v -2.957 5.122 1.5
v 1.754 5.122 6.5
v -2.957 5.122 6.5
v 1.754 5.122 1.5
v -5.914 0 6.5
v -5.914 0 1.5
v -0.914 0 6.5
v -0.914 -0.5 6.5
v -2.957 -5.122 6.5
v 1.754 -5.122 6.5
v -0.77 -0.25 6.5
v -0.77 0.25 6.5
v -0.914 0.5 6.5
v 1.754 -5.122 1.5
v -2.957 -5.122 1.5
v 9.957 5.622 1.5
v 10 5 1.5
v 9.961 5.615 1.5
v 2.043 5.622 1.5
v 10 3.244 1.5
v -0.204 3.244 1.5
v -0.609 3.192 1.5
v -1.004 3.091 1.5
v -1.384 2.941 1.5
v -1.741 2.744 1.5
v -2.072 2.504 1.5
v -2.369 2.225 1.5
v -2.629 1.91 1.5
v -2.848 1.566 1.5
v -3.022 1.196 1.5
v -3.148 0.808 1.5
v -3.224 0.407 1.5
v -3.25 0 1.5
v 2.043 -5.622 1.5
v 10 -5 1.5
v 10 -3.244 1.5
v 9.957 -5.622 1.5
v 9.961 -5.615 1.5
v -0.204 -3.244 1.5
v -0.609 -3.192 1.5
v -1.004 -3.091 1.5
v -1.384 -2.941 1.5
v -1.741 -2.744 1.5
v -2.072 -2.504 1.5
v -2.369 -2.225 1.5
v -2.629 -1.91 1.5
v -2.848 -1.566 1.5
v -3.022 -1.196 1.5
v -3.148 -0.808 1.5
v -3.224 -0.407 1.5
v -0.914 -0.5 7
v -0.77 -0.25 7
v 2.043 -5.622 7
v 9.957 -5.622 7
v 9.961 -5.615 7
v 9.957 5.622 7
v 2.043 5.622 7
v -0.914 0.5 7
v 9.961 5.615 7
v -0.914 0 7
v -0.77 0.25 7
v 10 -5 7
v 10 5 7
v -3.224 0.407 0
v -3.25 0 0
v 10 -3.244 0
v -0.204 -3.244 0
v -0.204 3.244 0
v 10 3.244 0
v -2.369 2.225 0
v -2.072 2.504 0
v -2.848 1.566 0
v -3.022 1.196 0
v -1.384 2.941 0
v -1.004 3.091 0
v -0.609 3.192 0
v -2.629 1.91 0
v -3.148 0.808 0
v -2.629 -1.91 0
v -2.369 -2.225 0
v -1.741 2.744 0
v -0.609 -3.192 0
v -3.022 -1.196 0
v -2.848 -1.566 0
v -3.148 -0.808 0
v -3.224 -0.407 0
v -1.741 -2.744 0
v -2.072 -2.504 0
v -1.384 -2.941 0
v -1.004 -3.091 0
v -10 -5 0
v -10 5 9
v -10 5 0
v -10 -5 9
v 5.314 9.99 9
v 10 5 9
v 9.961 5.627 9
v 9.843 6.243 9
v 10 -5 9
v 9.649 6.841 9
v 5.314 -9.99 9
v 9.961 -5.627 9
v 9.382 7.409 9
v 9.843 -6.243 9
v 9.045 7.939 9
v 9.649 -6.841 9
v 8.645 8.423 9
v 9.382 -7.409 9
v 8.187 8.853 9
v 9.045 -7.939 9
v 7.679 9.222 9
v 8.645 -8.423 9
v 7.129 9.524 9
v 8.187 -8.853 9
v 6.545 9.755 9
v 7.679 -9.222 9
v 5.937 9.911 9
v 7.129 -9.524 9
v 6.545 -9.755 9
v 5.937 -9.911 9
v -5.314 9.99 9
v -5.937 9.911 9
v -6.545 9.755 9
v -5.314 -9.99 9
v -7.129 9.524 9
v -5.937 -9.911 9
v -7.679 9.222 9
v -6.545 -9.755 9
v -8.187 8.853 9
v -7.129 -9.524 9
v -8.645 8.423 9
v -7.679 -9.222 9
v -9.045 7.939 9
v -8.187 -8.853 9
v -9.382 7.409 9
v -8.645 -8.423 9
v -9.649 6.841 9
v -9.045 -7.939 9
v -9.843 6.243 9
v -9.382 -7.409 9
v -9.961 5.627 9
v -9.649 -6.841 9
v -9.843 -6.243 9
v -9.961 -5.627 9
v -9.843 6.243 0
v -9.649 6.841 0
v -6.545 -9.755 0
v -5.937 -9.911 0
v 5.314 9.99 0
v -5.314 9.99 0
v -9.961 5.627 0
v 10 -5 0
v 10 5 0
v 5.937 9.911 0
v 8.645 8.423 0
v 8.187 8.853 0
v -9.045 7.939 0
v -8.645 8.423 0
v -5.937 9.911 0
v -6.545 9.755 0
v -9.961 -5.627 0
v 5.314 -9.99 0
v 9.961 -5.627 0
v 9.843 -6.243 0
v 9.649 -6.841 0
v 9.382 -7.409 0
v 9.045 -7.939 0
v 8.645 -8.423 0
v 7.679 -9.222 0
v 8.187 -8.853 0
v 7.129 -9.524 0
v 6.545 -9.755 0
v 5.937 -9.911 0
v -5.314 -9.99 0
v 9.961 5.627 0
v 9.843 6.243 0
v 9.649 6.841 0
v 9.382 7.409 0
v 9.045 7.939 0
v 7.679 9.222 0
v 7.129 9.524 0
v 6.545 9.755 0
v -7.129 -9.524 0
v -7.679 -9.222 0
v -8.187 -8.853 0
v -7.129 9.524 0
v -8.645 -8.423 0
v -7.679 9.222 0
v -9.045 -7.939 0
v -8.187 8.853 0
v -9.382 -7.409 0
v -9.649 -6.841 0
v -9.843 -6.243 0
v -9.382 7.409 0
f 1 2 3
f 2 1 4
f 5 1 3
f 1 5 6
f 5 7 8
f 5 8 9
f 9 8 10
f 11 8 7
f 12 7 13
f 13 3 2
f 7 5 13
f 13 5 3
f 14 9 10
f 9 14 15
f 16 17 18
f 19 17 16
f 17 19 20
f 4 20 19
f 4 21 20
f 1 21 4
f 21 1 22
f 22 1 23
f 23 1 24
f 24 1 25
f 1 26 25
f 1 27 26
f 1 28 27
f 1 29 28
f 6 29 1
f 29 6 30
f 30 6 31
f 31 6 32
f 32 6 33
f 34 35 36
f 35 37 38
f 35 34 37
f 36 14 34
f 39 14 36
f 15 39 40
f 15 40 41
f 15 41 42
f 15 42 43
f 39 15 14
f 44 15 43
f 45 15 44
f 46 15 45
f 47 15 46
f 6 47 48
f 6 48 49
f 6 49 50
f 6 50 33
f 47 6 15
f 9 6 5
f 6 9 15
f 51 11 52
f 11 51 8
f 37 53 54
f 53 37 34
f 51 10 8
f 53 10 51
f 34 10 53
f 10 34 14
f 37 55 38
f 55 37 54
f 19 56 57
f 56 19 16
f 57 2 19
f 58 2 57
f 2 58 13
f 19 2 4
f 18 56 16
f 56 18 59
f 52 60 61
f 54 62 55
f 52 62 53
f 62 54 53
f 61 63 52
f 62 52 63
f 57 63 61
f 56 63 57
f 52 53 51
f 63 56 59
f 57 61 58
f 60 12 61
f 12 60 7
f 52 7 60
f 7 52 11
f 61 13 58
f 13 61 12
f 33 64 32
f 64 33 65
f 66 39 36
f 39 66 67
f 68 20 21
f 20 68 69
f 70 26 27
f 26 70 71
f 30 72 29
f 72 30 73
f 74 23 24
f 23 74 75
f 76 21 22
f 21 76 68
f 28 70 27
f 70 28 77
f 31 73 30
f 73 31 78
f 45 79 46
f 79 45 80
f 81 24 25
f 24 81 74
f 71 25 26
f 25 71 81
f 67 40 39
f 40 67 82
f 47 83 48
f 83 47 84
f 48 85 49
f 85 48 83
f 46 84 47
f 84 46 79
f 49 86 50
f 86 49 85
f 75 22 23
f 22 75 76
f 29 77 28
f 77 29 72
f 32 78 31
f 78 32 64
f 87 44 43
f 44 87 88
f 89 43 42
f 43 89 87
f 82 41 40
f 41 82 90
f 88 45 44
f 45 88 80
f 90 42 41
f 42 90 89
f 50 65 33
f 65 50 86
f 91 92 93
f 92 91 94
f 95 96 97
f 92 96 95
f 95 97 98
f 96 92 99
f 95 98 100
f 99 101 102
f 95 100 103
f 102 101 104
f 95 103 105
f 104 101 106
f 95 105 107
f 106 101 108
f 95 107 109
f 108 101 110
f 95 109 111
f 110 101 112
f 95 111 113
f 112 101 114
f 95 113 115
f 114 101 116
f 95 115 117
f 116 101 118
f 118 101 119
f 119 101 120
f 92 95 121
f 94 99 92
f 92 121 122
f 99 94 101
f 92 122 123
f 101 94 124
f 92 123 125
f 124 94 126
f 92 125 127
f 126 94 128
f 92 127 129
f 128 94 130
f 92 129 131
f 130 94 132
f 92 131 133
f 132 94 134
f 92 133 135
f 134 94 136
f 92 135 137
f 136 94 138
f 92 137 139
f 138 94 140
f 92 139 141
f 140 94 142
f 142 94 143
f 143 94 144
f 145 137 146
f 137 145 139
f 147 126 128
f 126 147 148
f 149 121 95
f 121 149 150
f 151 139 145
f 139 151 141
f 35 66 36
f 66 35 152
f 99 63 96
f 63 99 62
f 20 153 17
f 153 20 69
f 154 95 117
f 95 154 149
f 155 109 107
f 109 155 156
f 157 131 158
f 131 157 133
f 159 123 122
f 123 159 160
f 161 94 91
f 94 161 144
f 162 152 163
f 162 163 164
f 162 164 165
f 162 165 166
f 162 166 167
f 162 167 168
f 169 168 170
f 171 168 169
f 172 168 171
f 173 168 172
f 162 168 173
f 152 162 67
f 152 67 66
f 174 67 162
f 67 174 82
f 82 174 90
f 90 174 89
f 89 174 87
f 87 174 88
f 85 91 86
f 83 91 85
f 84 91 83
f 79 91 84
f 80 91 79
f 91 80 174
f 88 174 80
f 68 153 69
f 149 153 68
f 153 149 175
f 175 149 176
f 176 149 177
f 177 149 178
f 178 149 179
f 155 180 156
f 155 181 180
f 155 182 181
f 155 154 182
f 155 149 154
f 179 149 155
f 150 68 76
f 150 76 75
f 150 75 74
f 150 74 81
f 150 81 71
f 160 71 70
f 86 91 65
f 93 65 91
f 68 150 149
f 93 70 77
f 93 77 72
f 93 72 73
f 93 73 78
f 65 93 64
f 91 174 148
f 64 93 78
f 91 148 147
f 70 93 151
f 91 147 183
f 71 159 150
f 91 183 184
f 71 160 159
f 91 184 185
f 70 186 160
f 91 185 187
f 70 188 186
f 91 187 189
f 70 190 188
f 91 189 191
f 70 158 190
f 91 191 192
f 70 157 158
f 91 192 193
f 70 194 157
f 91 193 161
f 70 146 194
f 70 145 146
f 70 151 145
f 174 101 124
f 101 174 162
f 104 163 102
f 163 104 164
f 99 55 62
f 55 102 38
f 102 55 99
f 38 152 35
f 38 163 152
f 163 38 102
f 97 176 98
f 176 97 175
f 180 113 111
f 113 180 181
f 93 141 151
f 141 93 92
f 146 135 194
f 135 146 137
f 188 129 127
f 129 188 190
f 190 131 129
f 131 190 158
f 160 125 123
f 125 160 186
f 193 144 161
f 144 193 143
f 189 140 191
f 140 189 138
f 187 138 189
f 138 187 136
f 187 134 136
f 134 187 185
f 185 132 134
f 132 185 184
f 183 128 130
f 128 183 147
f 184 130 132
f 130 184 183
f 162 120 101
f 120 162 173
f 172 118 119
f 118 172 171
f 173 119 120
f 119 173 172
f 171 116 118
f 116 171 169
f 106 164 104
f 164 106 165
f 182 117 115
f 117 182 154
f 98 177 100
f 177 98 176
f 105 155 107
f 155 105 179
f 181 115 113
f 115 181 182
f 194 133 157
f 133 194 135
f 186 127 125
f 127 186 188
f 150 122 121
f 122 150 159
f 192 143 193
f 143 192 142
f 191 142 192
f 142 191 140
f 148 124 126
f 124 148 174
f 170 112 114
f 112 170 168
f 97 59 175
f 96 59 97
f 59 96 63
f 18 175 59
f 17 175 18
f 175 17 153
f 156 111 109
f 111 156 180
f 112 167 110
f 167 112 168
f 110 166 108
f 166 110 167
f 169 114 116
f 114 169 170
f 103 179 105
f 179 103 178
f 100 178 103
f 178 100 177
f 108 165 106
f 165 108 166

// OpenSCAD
$fn = 50;


difference() {
	union() {
		hull() {
			translate(v = [-5.0000000000, 5.0000000000, 0]) {
				cylinder(h = 9, r = 5);
			}
			translate(v = [5.0000000000, 5.0000000000, 0]) {
				cylinder(h = 9, r = 5);
			}
			translate(v = [-5.0000000000, -5.0000000000, 0]) {
				cylinder(h = 9, r = 5);
			}
			translate(v = [5.0000000000, -5.0000000000, 0]) {
				cylinder(h = 9, r = 5);
			}
		}
	}
	union() {
		translate(v = [0, 0, 1.5000000000]) {
			rotate(a = [0, 0, 0]) {
				difference() {
					union() {
						#linear_extrude(height = 5) {
							polygon(points = [[5.9142500000, 0.0000000000], [2.9571250000, 5.1218907443], [-2.9571250000, 5.1218907443], [-5.9142500000, 0.0000000000], [-2.9571250000, -5.1218907443], [2.9571250000, -5.1218907443]]);
						}
					}
					union();
				}
			}
		}
		translate(v = [5, -0.5000000000, 1.5000000000]) {
			rotate(a = [0, 0, 0]) {
				difference() {
					union() {
						#linear_extrude(height = 5) {
							polygon(points = [[5.9142500000, 0.0000000000], [2.9571250000, 5.1218907443], [-2.9571250000, 5.1218907443], [-5.9142500000, 0.0000000000], [-2.9571250000, -5.1218907443], [2.9571250000, -5.1218907443]]);
						}
					}
					union();
				}
			}
		}
		translate(v = [6, -0.5000000000, 1.5000000000]) {
			rotate(a = [0, 0, 0]) {
				difference() {
					union() {
						#linear_extrude(height = 5) {
							polygon(points = [[5.9142500000, 0.0000000000], [2.9571250000, 5.1218907443], [-2.9571250000, 5.1218907443], [-5.9142500000, 0.0000000000], [-2.9571250000, -5.1218907443], [2.9571250000, -5.1218907443]]);
						}
					}
					union();
				}
			}
		}
		translate(v = [7, -0.5000000000, 1.5000000000]) {
			rotate(a = [0, 0, 0]) {
				difference() {
					union() {
						#linear_extrude(height = 5) {
							polygon(points = [[5.9142500000, 0.0000000000], [2.9571250000, 5.1218907443], [-2.9571250000, 5.1218907443], [-5.9142500000, 0.0000000000], [-2.9571250000, -5.1218907443], [2.9571250000, -5.1218907443]]);
						}
					}
					union();
				}
			}
		}
		translate(v = [5, 0.0000000000, 1.5000000000]) {
			rotate(a = [0, 0, 0]) {
				difference() {
					union() {
						#linear_extrude(height = 5) {
							polygon(points = [[5.9142500000, 0.0000000000], [2.9571250000, 5.1218907443], [-2.9571250000, 5.1218907443], [-5.9142500000, 0.0000000000], [-2.9571250000, -5.1218907443], [2.9571250000, -5.1218907443]]);
						}
					}
					union();
				}
			}
		}
		translate(v = [6, 0.0000000000, 1.5000000000]) {
			rotate(a = [0, 0, 0]) {
				difference() {
					union() {
						#linear_extrude(height = 5) {
							polygon(points = [[5.9142500000, 0.0000000000], [2.9571250000, 5.1218907443], [-2.9571250000, 5.1218907443], [-5.9142500000, 0.0000000000], [-2.9571250000, -5.1218907443], [2.9571250000, -5.1218907443]]);
						}
					}
					union();
				}
			}
		}
		translate(v = [7, 0.0000000000, 1.5000000000]) {
			rotate(a = [0, 0, 0]) {
				difference() {
					union() {
						#linear_extrude(height = 5) {
							polygon(points = [[5.9142500000, 0.0000000000], [2.9571250000, 5.1218907443], [-2.9571250000, 5.1218907443], [-5.9142500000, 0.0000000000], [-2.9571250000, -5.1218907443], [2.9571250000, -5.1218907443]]);
						}
					}
					union();
				}
			}
		}
		translate(v = [5, 0.5000000000, 1.5000000000]) {
			rotate(a = [0, 0, 0]) {
				difference() {
					union() {
						#linear_extrude(height = 5) {
							polygon(points = [[5.9142500000, 0.0000000000], [2.9571250000, 5.1218907443], [-2.9571250000, 5.1218907443], [-5.9142500000, 0.0000000000], [-2.9571250000, -5.1218907443], [2.9571250000, -5.1218907443]]);
						}
					}
					union();
				}
			}
		}
		translate(v = [6, 0.5000000000, 1.5000000000]) {
			rotate(a = [0, 0, 0]) {
				difference() {
					union() {
						#linear_extrude(height = 5) {
							polygon(points = [[5.9142500000, 0.0000000000], [2.9571250000, 5.1218907443], [-2.9571250000, 5.1218907443], [-5.9142500000, 0.0000000000], [-2.9571250000, -5.1218907443], [2.9571250000, -5.1218907443]]);
						}
					}
					union();
				}
			}
		}
		translate(v = [7, 0.5000000000, 1.5000000000]) {
			rotate(a = [0, 0, 0]) {
				difference() {
					union() {
						#linear_extrude(height = 5) {
							polygon(points = [[5.9142500000, 0.0000000000], [2.9571250000, 5.1218907443], [-2.9571250000, 5.1218907443], [-5.9142500000, 0.0000000000], [-2.9571250000, -5.1218907443], [2.9571250000, -5.1218907443]]);
						}
					}
					union();
				}
			}
		}
		translate(v = [5, -0.5000000000, 2.0000000000]) {
			rotate(a = [0, 0, 0]) {
				difference() {
					union() {
						#linear_extrude(height = 5) {
							polygon(points = [[5.9142500000, 0.0000000000], [2.9571250000, 5.1218907443], [-2.9571250000, 5.1218907443], [-5.9142500000, 0.0000000000], [-2.9571250000, -5.1218907443], [2.9571250000, -5.1218907443]]);
						}
					}
					union();
				}
			}
		}
		translate(v = [6, -0.5000000000, 2.0000000000]) {
			rotate(a = [0, 0, 0]) {
				difference() {
					union() {
						#linear_extrude(height = 5) {
							polygon(points = [[5.9142500000, 0.0000000000], [2.9571250000, 5.1218907443], [-2.9571250000, 5.1218907443], [-5.9142500000, 0.0000000000], [-2.9571250000, -5.1218907443], [2.9571250000, -5.1218907443]]);
						}
					}
					union();
				}
			}
		}
		translate(v = [7, -0.5000000000, 2.0000000000]) {
			rotate(a = [0, 0, 0]) {
				difference() {
					union() {
						#linear_extrude(height = 5) {
							polygon(points = [[5.9142500000, 0.0000000000], [2.9571250000, 5.1218907443], [-2.9571250000, 5.1218907443], [-5.9142500000, 0.0000000000], [-2.9571250000, -5.1218907443], [2.9571250000, -5.1218907443]]);
						}
					}
					union();
				}
			}
		}
		translate(v = [5, 0.0000000000, 2.0000000000]) {
			rotate(a = [0, 0, 0]) {
				difference() {
					union() {
						#linear_extrude(height = 5) {
							polygon(points = [[5.9142500000, 0.0000000000], [2.9571250000, 5.1218907443], [-2.9571250000, 5.1218907443], [-5.9142500000, 0.0000000000], [-2.9571250000, -5.1218907443], [2.9571250000, -5.1218907443]]);
						}
					}
					union();
				}
			}
		}
		translate(v = [6, 0.0000000000, 2.0000000000]) {
			rotate(a = [0, 0, 0]) {
				difference() {
					union() {
						#linear_extrude(height = 5) {
							polygon(points = [[5.9142500000, 0.0000000000], [2.9571250000, 5.1218907443], [-2.9571250000, 5.1218907443], [-5.9142500000, 0.0000000000], [-2.9571250000, -5.1218907443], [2.9571250000, -5.1218907443]]);
						}
					}
					union();
				}
			}
		}
		translate(v = [7, 0.0000000000, 2.0000000000]) {
			rotate(a = [0, 0, 0]) {
				difference() {
					union() {
						#linear_extrude(height = 5) {
							polygon(points = [[5.9142500000, 0.0000000000], [2.9571250000, 5.1218907443], [-2.9571250000, 5.1218907443], [-5.9142500000, 0.0000000000], [-2.9571250000, -5.1218907443], [2.9571250000, -5.1218907443]]);
						}
					}
					union();
				}
			}
		}
		translate(v = [5, 0.5000000000, 2.0000000000]) {
			rotate(a = [0, 0, 0]) {
				difference() {
					union() {
						#linear_extrude(height = 5) {
							polygon(points = [[5.9142500000, 0.0000000000], [2.9571250000, 5.1218907443], [-2.9571250000, 5.1218907443], [-5.9142500000, 0.0000000000], [-2.9571250000, -5.1218907443], [2.9571250000, -5.1218907443]]);
						}
					}
					union();
				}
			}
		}
		translate(v = [6, 0.5000000000, 2.0000000000]) {
			rotate(a = [0, 0, 0]) {
				difference() {
					union() {
						#linear_extrude(height = 5) {
							polygon(points = [[5.9142500000, 0.0000000000], [2.9571250000, 5.1218907443], [-2.9571250000, 5.1218907443], [-5.9142500000, 0.0000000000], [-2.9571250000, -5.1218907443], [2.9571250000, -5.1218907443]]);
						}
					}
					union();
				}
			}
		}
		translate(v = [7, 0.5000000000, 2.0000000000]) {
			rotate(a = [0, 0, 0]) {
				difference() {
					union() {
						#linear_extrude(height = 5) {
							polygon(points = [[5.9142500000, 0.0000000000], [2.9571250000, 5.1218907443], [-2.9571250000, 5.1218907443], [-5.9142500000, 0.0000000000], [-2.9571250000, -5.1218907443], [2.9571250000, -5.1218907443]]);
						}
					}
					union();
				}
			}
		}
		translate(v = [5, 0, -7.5000000000]) {
			rotate(a = [0, 0, 0]) {
				difference() {
					union() {
						hull() {
							translate(v = [5.0000000000, 0, 0]) {
								cylinder(h = 9, r = 3.2500000000, r1 = 3.2500000000, r2 = 3.2500000000);
							}
							translate(v = [-5.0000000000, 0, 0]) {
								cylinder(h = 9, r = 3.2500000000, r1 = 3.2500000000, r2 = 3.2500000000);
							}
						}
					}
					union();
				}
			}
		}
	}
}
